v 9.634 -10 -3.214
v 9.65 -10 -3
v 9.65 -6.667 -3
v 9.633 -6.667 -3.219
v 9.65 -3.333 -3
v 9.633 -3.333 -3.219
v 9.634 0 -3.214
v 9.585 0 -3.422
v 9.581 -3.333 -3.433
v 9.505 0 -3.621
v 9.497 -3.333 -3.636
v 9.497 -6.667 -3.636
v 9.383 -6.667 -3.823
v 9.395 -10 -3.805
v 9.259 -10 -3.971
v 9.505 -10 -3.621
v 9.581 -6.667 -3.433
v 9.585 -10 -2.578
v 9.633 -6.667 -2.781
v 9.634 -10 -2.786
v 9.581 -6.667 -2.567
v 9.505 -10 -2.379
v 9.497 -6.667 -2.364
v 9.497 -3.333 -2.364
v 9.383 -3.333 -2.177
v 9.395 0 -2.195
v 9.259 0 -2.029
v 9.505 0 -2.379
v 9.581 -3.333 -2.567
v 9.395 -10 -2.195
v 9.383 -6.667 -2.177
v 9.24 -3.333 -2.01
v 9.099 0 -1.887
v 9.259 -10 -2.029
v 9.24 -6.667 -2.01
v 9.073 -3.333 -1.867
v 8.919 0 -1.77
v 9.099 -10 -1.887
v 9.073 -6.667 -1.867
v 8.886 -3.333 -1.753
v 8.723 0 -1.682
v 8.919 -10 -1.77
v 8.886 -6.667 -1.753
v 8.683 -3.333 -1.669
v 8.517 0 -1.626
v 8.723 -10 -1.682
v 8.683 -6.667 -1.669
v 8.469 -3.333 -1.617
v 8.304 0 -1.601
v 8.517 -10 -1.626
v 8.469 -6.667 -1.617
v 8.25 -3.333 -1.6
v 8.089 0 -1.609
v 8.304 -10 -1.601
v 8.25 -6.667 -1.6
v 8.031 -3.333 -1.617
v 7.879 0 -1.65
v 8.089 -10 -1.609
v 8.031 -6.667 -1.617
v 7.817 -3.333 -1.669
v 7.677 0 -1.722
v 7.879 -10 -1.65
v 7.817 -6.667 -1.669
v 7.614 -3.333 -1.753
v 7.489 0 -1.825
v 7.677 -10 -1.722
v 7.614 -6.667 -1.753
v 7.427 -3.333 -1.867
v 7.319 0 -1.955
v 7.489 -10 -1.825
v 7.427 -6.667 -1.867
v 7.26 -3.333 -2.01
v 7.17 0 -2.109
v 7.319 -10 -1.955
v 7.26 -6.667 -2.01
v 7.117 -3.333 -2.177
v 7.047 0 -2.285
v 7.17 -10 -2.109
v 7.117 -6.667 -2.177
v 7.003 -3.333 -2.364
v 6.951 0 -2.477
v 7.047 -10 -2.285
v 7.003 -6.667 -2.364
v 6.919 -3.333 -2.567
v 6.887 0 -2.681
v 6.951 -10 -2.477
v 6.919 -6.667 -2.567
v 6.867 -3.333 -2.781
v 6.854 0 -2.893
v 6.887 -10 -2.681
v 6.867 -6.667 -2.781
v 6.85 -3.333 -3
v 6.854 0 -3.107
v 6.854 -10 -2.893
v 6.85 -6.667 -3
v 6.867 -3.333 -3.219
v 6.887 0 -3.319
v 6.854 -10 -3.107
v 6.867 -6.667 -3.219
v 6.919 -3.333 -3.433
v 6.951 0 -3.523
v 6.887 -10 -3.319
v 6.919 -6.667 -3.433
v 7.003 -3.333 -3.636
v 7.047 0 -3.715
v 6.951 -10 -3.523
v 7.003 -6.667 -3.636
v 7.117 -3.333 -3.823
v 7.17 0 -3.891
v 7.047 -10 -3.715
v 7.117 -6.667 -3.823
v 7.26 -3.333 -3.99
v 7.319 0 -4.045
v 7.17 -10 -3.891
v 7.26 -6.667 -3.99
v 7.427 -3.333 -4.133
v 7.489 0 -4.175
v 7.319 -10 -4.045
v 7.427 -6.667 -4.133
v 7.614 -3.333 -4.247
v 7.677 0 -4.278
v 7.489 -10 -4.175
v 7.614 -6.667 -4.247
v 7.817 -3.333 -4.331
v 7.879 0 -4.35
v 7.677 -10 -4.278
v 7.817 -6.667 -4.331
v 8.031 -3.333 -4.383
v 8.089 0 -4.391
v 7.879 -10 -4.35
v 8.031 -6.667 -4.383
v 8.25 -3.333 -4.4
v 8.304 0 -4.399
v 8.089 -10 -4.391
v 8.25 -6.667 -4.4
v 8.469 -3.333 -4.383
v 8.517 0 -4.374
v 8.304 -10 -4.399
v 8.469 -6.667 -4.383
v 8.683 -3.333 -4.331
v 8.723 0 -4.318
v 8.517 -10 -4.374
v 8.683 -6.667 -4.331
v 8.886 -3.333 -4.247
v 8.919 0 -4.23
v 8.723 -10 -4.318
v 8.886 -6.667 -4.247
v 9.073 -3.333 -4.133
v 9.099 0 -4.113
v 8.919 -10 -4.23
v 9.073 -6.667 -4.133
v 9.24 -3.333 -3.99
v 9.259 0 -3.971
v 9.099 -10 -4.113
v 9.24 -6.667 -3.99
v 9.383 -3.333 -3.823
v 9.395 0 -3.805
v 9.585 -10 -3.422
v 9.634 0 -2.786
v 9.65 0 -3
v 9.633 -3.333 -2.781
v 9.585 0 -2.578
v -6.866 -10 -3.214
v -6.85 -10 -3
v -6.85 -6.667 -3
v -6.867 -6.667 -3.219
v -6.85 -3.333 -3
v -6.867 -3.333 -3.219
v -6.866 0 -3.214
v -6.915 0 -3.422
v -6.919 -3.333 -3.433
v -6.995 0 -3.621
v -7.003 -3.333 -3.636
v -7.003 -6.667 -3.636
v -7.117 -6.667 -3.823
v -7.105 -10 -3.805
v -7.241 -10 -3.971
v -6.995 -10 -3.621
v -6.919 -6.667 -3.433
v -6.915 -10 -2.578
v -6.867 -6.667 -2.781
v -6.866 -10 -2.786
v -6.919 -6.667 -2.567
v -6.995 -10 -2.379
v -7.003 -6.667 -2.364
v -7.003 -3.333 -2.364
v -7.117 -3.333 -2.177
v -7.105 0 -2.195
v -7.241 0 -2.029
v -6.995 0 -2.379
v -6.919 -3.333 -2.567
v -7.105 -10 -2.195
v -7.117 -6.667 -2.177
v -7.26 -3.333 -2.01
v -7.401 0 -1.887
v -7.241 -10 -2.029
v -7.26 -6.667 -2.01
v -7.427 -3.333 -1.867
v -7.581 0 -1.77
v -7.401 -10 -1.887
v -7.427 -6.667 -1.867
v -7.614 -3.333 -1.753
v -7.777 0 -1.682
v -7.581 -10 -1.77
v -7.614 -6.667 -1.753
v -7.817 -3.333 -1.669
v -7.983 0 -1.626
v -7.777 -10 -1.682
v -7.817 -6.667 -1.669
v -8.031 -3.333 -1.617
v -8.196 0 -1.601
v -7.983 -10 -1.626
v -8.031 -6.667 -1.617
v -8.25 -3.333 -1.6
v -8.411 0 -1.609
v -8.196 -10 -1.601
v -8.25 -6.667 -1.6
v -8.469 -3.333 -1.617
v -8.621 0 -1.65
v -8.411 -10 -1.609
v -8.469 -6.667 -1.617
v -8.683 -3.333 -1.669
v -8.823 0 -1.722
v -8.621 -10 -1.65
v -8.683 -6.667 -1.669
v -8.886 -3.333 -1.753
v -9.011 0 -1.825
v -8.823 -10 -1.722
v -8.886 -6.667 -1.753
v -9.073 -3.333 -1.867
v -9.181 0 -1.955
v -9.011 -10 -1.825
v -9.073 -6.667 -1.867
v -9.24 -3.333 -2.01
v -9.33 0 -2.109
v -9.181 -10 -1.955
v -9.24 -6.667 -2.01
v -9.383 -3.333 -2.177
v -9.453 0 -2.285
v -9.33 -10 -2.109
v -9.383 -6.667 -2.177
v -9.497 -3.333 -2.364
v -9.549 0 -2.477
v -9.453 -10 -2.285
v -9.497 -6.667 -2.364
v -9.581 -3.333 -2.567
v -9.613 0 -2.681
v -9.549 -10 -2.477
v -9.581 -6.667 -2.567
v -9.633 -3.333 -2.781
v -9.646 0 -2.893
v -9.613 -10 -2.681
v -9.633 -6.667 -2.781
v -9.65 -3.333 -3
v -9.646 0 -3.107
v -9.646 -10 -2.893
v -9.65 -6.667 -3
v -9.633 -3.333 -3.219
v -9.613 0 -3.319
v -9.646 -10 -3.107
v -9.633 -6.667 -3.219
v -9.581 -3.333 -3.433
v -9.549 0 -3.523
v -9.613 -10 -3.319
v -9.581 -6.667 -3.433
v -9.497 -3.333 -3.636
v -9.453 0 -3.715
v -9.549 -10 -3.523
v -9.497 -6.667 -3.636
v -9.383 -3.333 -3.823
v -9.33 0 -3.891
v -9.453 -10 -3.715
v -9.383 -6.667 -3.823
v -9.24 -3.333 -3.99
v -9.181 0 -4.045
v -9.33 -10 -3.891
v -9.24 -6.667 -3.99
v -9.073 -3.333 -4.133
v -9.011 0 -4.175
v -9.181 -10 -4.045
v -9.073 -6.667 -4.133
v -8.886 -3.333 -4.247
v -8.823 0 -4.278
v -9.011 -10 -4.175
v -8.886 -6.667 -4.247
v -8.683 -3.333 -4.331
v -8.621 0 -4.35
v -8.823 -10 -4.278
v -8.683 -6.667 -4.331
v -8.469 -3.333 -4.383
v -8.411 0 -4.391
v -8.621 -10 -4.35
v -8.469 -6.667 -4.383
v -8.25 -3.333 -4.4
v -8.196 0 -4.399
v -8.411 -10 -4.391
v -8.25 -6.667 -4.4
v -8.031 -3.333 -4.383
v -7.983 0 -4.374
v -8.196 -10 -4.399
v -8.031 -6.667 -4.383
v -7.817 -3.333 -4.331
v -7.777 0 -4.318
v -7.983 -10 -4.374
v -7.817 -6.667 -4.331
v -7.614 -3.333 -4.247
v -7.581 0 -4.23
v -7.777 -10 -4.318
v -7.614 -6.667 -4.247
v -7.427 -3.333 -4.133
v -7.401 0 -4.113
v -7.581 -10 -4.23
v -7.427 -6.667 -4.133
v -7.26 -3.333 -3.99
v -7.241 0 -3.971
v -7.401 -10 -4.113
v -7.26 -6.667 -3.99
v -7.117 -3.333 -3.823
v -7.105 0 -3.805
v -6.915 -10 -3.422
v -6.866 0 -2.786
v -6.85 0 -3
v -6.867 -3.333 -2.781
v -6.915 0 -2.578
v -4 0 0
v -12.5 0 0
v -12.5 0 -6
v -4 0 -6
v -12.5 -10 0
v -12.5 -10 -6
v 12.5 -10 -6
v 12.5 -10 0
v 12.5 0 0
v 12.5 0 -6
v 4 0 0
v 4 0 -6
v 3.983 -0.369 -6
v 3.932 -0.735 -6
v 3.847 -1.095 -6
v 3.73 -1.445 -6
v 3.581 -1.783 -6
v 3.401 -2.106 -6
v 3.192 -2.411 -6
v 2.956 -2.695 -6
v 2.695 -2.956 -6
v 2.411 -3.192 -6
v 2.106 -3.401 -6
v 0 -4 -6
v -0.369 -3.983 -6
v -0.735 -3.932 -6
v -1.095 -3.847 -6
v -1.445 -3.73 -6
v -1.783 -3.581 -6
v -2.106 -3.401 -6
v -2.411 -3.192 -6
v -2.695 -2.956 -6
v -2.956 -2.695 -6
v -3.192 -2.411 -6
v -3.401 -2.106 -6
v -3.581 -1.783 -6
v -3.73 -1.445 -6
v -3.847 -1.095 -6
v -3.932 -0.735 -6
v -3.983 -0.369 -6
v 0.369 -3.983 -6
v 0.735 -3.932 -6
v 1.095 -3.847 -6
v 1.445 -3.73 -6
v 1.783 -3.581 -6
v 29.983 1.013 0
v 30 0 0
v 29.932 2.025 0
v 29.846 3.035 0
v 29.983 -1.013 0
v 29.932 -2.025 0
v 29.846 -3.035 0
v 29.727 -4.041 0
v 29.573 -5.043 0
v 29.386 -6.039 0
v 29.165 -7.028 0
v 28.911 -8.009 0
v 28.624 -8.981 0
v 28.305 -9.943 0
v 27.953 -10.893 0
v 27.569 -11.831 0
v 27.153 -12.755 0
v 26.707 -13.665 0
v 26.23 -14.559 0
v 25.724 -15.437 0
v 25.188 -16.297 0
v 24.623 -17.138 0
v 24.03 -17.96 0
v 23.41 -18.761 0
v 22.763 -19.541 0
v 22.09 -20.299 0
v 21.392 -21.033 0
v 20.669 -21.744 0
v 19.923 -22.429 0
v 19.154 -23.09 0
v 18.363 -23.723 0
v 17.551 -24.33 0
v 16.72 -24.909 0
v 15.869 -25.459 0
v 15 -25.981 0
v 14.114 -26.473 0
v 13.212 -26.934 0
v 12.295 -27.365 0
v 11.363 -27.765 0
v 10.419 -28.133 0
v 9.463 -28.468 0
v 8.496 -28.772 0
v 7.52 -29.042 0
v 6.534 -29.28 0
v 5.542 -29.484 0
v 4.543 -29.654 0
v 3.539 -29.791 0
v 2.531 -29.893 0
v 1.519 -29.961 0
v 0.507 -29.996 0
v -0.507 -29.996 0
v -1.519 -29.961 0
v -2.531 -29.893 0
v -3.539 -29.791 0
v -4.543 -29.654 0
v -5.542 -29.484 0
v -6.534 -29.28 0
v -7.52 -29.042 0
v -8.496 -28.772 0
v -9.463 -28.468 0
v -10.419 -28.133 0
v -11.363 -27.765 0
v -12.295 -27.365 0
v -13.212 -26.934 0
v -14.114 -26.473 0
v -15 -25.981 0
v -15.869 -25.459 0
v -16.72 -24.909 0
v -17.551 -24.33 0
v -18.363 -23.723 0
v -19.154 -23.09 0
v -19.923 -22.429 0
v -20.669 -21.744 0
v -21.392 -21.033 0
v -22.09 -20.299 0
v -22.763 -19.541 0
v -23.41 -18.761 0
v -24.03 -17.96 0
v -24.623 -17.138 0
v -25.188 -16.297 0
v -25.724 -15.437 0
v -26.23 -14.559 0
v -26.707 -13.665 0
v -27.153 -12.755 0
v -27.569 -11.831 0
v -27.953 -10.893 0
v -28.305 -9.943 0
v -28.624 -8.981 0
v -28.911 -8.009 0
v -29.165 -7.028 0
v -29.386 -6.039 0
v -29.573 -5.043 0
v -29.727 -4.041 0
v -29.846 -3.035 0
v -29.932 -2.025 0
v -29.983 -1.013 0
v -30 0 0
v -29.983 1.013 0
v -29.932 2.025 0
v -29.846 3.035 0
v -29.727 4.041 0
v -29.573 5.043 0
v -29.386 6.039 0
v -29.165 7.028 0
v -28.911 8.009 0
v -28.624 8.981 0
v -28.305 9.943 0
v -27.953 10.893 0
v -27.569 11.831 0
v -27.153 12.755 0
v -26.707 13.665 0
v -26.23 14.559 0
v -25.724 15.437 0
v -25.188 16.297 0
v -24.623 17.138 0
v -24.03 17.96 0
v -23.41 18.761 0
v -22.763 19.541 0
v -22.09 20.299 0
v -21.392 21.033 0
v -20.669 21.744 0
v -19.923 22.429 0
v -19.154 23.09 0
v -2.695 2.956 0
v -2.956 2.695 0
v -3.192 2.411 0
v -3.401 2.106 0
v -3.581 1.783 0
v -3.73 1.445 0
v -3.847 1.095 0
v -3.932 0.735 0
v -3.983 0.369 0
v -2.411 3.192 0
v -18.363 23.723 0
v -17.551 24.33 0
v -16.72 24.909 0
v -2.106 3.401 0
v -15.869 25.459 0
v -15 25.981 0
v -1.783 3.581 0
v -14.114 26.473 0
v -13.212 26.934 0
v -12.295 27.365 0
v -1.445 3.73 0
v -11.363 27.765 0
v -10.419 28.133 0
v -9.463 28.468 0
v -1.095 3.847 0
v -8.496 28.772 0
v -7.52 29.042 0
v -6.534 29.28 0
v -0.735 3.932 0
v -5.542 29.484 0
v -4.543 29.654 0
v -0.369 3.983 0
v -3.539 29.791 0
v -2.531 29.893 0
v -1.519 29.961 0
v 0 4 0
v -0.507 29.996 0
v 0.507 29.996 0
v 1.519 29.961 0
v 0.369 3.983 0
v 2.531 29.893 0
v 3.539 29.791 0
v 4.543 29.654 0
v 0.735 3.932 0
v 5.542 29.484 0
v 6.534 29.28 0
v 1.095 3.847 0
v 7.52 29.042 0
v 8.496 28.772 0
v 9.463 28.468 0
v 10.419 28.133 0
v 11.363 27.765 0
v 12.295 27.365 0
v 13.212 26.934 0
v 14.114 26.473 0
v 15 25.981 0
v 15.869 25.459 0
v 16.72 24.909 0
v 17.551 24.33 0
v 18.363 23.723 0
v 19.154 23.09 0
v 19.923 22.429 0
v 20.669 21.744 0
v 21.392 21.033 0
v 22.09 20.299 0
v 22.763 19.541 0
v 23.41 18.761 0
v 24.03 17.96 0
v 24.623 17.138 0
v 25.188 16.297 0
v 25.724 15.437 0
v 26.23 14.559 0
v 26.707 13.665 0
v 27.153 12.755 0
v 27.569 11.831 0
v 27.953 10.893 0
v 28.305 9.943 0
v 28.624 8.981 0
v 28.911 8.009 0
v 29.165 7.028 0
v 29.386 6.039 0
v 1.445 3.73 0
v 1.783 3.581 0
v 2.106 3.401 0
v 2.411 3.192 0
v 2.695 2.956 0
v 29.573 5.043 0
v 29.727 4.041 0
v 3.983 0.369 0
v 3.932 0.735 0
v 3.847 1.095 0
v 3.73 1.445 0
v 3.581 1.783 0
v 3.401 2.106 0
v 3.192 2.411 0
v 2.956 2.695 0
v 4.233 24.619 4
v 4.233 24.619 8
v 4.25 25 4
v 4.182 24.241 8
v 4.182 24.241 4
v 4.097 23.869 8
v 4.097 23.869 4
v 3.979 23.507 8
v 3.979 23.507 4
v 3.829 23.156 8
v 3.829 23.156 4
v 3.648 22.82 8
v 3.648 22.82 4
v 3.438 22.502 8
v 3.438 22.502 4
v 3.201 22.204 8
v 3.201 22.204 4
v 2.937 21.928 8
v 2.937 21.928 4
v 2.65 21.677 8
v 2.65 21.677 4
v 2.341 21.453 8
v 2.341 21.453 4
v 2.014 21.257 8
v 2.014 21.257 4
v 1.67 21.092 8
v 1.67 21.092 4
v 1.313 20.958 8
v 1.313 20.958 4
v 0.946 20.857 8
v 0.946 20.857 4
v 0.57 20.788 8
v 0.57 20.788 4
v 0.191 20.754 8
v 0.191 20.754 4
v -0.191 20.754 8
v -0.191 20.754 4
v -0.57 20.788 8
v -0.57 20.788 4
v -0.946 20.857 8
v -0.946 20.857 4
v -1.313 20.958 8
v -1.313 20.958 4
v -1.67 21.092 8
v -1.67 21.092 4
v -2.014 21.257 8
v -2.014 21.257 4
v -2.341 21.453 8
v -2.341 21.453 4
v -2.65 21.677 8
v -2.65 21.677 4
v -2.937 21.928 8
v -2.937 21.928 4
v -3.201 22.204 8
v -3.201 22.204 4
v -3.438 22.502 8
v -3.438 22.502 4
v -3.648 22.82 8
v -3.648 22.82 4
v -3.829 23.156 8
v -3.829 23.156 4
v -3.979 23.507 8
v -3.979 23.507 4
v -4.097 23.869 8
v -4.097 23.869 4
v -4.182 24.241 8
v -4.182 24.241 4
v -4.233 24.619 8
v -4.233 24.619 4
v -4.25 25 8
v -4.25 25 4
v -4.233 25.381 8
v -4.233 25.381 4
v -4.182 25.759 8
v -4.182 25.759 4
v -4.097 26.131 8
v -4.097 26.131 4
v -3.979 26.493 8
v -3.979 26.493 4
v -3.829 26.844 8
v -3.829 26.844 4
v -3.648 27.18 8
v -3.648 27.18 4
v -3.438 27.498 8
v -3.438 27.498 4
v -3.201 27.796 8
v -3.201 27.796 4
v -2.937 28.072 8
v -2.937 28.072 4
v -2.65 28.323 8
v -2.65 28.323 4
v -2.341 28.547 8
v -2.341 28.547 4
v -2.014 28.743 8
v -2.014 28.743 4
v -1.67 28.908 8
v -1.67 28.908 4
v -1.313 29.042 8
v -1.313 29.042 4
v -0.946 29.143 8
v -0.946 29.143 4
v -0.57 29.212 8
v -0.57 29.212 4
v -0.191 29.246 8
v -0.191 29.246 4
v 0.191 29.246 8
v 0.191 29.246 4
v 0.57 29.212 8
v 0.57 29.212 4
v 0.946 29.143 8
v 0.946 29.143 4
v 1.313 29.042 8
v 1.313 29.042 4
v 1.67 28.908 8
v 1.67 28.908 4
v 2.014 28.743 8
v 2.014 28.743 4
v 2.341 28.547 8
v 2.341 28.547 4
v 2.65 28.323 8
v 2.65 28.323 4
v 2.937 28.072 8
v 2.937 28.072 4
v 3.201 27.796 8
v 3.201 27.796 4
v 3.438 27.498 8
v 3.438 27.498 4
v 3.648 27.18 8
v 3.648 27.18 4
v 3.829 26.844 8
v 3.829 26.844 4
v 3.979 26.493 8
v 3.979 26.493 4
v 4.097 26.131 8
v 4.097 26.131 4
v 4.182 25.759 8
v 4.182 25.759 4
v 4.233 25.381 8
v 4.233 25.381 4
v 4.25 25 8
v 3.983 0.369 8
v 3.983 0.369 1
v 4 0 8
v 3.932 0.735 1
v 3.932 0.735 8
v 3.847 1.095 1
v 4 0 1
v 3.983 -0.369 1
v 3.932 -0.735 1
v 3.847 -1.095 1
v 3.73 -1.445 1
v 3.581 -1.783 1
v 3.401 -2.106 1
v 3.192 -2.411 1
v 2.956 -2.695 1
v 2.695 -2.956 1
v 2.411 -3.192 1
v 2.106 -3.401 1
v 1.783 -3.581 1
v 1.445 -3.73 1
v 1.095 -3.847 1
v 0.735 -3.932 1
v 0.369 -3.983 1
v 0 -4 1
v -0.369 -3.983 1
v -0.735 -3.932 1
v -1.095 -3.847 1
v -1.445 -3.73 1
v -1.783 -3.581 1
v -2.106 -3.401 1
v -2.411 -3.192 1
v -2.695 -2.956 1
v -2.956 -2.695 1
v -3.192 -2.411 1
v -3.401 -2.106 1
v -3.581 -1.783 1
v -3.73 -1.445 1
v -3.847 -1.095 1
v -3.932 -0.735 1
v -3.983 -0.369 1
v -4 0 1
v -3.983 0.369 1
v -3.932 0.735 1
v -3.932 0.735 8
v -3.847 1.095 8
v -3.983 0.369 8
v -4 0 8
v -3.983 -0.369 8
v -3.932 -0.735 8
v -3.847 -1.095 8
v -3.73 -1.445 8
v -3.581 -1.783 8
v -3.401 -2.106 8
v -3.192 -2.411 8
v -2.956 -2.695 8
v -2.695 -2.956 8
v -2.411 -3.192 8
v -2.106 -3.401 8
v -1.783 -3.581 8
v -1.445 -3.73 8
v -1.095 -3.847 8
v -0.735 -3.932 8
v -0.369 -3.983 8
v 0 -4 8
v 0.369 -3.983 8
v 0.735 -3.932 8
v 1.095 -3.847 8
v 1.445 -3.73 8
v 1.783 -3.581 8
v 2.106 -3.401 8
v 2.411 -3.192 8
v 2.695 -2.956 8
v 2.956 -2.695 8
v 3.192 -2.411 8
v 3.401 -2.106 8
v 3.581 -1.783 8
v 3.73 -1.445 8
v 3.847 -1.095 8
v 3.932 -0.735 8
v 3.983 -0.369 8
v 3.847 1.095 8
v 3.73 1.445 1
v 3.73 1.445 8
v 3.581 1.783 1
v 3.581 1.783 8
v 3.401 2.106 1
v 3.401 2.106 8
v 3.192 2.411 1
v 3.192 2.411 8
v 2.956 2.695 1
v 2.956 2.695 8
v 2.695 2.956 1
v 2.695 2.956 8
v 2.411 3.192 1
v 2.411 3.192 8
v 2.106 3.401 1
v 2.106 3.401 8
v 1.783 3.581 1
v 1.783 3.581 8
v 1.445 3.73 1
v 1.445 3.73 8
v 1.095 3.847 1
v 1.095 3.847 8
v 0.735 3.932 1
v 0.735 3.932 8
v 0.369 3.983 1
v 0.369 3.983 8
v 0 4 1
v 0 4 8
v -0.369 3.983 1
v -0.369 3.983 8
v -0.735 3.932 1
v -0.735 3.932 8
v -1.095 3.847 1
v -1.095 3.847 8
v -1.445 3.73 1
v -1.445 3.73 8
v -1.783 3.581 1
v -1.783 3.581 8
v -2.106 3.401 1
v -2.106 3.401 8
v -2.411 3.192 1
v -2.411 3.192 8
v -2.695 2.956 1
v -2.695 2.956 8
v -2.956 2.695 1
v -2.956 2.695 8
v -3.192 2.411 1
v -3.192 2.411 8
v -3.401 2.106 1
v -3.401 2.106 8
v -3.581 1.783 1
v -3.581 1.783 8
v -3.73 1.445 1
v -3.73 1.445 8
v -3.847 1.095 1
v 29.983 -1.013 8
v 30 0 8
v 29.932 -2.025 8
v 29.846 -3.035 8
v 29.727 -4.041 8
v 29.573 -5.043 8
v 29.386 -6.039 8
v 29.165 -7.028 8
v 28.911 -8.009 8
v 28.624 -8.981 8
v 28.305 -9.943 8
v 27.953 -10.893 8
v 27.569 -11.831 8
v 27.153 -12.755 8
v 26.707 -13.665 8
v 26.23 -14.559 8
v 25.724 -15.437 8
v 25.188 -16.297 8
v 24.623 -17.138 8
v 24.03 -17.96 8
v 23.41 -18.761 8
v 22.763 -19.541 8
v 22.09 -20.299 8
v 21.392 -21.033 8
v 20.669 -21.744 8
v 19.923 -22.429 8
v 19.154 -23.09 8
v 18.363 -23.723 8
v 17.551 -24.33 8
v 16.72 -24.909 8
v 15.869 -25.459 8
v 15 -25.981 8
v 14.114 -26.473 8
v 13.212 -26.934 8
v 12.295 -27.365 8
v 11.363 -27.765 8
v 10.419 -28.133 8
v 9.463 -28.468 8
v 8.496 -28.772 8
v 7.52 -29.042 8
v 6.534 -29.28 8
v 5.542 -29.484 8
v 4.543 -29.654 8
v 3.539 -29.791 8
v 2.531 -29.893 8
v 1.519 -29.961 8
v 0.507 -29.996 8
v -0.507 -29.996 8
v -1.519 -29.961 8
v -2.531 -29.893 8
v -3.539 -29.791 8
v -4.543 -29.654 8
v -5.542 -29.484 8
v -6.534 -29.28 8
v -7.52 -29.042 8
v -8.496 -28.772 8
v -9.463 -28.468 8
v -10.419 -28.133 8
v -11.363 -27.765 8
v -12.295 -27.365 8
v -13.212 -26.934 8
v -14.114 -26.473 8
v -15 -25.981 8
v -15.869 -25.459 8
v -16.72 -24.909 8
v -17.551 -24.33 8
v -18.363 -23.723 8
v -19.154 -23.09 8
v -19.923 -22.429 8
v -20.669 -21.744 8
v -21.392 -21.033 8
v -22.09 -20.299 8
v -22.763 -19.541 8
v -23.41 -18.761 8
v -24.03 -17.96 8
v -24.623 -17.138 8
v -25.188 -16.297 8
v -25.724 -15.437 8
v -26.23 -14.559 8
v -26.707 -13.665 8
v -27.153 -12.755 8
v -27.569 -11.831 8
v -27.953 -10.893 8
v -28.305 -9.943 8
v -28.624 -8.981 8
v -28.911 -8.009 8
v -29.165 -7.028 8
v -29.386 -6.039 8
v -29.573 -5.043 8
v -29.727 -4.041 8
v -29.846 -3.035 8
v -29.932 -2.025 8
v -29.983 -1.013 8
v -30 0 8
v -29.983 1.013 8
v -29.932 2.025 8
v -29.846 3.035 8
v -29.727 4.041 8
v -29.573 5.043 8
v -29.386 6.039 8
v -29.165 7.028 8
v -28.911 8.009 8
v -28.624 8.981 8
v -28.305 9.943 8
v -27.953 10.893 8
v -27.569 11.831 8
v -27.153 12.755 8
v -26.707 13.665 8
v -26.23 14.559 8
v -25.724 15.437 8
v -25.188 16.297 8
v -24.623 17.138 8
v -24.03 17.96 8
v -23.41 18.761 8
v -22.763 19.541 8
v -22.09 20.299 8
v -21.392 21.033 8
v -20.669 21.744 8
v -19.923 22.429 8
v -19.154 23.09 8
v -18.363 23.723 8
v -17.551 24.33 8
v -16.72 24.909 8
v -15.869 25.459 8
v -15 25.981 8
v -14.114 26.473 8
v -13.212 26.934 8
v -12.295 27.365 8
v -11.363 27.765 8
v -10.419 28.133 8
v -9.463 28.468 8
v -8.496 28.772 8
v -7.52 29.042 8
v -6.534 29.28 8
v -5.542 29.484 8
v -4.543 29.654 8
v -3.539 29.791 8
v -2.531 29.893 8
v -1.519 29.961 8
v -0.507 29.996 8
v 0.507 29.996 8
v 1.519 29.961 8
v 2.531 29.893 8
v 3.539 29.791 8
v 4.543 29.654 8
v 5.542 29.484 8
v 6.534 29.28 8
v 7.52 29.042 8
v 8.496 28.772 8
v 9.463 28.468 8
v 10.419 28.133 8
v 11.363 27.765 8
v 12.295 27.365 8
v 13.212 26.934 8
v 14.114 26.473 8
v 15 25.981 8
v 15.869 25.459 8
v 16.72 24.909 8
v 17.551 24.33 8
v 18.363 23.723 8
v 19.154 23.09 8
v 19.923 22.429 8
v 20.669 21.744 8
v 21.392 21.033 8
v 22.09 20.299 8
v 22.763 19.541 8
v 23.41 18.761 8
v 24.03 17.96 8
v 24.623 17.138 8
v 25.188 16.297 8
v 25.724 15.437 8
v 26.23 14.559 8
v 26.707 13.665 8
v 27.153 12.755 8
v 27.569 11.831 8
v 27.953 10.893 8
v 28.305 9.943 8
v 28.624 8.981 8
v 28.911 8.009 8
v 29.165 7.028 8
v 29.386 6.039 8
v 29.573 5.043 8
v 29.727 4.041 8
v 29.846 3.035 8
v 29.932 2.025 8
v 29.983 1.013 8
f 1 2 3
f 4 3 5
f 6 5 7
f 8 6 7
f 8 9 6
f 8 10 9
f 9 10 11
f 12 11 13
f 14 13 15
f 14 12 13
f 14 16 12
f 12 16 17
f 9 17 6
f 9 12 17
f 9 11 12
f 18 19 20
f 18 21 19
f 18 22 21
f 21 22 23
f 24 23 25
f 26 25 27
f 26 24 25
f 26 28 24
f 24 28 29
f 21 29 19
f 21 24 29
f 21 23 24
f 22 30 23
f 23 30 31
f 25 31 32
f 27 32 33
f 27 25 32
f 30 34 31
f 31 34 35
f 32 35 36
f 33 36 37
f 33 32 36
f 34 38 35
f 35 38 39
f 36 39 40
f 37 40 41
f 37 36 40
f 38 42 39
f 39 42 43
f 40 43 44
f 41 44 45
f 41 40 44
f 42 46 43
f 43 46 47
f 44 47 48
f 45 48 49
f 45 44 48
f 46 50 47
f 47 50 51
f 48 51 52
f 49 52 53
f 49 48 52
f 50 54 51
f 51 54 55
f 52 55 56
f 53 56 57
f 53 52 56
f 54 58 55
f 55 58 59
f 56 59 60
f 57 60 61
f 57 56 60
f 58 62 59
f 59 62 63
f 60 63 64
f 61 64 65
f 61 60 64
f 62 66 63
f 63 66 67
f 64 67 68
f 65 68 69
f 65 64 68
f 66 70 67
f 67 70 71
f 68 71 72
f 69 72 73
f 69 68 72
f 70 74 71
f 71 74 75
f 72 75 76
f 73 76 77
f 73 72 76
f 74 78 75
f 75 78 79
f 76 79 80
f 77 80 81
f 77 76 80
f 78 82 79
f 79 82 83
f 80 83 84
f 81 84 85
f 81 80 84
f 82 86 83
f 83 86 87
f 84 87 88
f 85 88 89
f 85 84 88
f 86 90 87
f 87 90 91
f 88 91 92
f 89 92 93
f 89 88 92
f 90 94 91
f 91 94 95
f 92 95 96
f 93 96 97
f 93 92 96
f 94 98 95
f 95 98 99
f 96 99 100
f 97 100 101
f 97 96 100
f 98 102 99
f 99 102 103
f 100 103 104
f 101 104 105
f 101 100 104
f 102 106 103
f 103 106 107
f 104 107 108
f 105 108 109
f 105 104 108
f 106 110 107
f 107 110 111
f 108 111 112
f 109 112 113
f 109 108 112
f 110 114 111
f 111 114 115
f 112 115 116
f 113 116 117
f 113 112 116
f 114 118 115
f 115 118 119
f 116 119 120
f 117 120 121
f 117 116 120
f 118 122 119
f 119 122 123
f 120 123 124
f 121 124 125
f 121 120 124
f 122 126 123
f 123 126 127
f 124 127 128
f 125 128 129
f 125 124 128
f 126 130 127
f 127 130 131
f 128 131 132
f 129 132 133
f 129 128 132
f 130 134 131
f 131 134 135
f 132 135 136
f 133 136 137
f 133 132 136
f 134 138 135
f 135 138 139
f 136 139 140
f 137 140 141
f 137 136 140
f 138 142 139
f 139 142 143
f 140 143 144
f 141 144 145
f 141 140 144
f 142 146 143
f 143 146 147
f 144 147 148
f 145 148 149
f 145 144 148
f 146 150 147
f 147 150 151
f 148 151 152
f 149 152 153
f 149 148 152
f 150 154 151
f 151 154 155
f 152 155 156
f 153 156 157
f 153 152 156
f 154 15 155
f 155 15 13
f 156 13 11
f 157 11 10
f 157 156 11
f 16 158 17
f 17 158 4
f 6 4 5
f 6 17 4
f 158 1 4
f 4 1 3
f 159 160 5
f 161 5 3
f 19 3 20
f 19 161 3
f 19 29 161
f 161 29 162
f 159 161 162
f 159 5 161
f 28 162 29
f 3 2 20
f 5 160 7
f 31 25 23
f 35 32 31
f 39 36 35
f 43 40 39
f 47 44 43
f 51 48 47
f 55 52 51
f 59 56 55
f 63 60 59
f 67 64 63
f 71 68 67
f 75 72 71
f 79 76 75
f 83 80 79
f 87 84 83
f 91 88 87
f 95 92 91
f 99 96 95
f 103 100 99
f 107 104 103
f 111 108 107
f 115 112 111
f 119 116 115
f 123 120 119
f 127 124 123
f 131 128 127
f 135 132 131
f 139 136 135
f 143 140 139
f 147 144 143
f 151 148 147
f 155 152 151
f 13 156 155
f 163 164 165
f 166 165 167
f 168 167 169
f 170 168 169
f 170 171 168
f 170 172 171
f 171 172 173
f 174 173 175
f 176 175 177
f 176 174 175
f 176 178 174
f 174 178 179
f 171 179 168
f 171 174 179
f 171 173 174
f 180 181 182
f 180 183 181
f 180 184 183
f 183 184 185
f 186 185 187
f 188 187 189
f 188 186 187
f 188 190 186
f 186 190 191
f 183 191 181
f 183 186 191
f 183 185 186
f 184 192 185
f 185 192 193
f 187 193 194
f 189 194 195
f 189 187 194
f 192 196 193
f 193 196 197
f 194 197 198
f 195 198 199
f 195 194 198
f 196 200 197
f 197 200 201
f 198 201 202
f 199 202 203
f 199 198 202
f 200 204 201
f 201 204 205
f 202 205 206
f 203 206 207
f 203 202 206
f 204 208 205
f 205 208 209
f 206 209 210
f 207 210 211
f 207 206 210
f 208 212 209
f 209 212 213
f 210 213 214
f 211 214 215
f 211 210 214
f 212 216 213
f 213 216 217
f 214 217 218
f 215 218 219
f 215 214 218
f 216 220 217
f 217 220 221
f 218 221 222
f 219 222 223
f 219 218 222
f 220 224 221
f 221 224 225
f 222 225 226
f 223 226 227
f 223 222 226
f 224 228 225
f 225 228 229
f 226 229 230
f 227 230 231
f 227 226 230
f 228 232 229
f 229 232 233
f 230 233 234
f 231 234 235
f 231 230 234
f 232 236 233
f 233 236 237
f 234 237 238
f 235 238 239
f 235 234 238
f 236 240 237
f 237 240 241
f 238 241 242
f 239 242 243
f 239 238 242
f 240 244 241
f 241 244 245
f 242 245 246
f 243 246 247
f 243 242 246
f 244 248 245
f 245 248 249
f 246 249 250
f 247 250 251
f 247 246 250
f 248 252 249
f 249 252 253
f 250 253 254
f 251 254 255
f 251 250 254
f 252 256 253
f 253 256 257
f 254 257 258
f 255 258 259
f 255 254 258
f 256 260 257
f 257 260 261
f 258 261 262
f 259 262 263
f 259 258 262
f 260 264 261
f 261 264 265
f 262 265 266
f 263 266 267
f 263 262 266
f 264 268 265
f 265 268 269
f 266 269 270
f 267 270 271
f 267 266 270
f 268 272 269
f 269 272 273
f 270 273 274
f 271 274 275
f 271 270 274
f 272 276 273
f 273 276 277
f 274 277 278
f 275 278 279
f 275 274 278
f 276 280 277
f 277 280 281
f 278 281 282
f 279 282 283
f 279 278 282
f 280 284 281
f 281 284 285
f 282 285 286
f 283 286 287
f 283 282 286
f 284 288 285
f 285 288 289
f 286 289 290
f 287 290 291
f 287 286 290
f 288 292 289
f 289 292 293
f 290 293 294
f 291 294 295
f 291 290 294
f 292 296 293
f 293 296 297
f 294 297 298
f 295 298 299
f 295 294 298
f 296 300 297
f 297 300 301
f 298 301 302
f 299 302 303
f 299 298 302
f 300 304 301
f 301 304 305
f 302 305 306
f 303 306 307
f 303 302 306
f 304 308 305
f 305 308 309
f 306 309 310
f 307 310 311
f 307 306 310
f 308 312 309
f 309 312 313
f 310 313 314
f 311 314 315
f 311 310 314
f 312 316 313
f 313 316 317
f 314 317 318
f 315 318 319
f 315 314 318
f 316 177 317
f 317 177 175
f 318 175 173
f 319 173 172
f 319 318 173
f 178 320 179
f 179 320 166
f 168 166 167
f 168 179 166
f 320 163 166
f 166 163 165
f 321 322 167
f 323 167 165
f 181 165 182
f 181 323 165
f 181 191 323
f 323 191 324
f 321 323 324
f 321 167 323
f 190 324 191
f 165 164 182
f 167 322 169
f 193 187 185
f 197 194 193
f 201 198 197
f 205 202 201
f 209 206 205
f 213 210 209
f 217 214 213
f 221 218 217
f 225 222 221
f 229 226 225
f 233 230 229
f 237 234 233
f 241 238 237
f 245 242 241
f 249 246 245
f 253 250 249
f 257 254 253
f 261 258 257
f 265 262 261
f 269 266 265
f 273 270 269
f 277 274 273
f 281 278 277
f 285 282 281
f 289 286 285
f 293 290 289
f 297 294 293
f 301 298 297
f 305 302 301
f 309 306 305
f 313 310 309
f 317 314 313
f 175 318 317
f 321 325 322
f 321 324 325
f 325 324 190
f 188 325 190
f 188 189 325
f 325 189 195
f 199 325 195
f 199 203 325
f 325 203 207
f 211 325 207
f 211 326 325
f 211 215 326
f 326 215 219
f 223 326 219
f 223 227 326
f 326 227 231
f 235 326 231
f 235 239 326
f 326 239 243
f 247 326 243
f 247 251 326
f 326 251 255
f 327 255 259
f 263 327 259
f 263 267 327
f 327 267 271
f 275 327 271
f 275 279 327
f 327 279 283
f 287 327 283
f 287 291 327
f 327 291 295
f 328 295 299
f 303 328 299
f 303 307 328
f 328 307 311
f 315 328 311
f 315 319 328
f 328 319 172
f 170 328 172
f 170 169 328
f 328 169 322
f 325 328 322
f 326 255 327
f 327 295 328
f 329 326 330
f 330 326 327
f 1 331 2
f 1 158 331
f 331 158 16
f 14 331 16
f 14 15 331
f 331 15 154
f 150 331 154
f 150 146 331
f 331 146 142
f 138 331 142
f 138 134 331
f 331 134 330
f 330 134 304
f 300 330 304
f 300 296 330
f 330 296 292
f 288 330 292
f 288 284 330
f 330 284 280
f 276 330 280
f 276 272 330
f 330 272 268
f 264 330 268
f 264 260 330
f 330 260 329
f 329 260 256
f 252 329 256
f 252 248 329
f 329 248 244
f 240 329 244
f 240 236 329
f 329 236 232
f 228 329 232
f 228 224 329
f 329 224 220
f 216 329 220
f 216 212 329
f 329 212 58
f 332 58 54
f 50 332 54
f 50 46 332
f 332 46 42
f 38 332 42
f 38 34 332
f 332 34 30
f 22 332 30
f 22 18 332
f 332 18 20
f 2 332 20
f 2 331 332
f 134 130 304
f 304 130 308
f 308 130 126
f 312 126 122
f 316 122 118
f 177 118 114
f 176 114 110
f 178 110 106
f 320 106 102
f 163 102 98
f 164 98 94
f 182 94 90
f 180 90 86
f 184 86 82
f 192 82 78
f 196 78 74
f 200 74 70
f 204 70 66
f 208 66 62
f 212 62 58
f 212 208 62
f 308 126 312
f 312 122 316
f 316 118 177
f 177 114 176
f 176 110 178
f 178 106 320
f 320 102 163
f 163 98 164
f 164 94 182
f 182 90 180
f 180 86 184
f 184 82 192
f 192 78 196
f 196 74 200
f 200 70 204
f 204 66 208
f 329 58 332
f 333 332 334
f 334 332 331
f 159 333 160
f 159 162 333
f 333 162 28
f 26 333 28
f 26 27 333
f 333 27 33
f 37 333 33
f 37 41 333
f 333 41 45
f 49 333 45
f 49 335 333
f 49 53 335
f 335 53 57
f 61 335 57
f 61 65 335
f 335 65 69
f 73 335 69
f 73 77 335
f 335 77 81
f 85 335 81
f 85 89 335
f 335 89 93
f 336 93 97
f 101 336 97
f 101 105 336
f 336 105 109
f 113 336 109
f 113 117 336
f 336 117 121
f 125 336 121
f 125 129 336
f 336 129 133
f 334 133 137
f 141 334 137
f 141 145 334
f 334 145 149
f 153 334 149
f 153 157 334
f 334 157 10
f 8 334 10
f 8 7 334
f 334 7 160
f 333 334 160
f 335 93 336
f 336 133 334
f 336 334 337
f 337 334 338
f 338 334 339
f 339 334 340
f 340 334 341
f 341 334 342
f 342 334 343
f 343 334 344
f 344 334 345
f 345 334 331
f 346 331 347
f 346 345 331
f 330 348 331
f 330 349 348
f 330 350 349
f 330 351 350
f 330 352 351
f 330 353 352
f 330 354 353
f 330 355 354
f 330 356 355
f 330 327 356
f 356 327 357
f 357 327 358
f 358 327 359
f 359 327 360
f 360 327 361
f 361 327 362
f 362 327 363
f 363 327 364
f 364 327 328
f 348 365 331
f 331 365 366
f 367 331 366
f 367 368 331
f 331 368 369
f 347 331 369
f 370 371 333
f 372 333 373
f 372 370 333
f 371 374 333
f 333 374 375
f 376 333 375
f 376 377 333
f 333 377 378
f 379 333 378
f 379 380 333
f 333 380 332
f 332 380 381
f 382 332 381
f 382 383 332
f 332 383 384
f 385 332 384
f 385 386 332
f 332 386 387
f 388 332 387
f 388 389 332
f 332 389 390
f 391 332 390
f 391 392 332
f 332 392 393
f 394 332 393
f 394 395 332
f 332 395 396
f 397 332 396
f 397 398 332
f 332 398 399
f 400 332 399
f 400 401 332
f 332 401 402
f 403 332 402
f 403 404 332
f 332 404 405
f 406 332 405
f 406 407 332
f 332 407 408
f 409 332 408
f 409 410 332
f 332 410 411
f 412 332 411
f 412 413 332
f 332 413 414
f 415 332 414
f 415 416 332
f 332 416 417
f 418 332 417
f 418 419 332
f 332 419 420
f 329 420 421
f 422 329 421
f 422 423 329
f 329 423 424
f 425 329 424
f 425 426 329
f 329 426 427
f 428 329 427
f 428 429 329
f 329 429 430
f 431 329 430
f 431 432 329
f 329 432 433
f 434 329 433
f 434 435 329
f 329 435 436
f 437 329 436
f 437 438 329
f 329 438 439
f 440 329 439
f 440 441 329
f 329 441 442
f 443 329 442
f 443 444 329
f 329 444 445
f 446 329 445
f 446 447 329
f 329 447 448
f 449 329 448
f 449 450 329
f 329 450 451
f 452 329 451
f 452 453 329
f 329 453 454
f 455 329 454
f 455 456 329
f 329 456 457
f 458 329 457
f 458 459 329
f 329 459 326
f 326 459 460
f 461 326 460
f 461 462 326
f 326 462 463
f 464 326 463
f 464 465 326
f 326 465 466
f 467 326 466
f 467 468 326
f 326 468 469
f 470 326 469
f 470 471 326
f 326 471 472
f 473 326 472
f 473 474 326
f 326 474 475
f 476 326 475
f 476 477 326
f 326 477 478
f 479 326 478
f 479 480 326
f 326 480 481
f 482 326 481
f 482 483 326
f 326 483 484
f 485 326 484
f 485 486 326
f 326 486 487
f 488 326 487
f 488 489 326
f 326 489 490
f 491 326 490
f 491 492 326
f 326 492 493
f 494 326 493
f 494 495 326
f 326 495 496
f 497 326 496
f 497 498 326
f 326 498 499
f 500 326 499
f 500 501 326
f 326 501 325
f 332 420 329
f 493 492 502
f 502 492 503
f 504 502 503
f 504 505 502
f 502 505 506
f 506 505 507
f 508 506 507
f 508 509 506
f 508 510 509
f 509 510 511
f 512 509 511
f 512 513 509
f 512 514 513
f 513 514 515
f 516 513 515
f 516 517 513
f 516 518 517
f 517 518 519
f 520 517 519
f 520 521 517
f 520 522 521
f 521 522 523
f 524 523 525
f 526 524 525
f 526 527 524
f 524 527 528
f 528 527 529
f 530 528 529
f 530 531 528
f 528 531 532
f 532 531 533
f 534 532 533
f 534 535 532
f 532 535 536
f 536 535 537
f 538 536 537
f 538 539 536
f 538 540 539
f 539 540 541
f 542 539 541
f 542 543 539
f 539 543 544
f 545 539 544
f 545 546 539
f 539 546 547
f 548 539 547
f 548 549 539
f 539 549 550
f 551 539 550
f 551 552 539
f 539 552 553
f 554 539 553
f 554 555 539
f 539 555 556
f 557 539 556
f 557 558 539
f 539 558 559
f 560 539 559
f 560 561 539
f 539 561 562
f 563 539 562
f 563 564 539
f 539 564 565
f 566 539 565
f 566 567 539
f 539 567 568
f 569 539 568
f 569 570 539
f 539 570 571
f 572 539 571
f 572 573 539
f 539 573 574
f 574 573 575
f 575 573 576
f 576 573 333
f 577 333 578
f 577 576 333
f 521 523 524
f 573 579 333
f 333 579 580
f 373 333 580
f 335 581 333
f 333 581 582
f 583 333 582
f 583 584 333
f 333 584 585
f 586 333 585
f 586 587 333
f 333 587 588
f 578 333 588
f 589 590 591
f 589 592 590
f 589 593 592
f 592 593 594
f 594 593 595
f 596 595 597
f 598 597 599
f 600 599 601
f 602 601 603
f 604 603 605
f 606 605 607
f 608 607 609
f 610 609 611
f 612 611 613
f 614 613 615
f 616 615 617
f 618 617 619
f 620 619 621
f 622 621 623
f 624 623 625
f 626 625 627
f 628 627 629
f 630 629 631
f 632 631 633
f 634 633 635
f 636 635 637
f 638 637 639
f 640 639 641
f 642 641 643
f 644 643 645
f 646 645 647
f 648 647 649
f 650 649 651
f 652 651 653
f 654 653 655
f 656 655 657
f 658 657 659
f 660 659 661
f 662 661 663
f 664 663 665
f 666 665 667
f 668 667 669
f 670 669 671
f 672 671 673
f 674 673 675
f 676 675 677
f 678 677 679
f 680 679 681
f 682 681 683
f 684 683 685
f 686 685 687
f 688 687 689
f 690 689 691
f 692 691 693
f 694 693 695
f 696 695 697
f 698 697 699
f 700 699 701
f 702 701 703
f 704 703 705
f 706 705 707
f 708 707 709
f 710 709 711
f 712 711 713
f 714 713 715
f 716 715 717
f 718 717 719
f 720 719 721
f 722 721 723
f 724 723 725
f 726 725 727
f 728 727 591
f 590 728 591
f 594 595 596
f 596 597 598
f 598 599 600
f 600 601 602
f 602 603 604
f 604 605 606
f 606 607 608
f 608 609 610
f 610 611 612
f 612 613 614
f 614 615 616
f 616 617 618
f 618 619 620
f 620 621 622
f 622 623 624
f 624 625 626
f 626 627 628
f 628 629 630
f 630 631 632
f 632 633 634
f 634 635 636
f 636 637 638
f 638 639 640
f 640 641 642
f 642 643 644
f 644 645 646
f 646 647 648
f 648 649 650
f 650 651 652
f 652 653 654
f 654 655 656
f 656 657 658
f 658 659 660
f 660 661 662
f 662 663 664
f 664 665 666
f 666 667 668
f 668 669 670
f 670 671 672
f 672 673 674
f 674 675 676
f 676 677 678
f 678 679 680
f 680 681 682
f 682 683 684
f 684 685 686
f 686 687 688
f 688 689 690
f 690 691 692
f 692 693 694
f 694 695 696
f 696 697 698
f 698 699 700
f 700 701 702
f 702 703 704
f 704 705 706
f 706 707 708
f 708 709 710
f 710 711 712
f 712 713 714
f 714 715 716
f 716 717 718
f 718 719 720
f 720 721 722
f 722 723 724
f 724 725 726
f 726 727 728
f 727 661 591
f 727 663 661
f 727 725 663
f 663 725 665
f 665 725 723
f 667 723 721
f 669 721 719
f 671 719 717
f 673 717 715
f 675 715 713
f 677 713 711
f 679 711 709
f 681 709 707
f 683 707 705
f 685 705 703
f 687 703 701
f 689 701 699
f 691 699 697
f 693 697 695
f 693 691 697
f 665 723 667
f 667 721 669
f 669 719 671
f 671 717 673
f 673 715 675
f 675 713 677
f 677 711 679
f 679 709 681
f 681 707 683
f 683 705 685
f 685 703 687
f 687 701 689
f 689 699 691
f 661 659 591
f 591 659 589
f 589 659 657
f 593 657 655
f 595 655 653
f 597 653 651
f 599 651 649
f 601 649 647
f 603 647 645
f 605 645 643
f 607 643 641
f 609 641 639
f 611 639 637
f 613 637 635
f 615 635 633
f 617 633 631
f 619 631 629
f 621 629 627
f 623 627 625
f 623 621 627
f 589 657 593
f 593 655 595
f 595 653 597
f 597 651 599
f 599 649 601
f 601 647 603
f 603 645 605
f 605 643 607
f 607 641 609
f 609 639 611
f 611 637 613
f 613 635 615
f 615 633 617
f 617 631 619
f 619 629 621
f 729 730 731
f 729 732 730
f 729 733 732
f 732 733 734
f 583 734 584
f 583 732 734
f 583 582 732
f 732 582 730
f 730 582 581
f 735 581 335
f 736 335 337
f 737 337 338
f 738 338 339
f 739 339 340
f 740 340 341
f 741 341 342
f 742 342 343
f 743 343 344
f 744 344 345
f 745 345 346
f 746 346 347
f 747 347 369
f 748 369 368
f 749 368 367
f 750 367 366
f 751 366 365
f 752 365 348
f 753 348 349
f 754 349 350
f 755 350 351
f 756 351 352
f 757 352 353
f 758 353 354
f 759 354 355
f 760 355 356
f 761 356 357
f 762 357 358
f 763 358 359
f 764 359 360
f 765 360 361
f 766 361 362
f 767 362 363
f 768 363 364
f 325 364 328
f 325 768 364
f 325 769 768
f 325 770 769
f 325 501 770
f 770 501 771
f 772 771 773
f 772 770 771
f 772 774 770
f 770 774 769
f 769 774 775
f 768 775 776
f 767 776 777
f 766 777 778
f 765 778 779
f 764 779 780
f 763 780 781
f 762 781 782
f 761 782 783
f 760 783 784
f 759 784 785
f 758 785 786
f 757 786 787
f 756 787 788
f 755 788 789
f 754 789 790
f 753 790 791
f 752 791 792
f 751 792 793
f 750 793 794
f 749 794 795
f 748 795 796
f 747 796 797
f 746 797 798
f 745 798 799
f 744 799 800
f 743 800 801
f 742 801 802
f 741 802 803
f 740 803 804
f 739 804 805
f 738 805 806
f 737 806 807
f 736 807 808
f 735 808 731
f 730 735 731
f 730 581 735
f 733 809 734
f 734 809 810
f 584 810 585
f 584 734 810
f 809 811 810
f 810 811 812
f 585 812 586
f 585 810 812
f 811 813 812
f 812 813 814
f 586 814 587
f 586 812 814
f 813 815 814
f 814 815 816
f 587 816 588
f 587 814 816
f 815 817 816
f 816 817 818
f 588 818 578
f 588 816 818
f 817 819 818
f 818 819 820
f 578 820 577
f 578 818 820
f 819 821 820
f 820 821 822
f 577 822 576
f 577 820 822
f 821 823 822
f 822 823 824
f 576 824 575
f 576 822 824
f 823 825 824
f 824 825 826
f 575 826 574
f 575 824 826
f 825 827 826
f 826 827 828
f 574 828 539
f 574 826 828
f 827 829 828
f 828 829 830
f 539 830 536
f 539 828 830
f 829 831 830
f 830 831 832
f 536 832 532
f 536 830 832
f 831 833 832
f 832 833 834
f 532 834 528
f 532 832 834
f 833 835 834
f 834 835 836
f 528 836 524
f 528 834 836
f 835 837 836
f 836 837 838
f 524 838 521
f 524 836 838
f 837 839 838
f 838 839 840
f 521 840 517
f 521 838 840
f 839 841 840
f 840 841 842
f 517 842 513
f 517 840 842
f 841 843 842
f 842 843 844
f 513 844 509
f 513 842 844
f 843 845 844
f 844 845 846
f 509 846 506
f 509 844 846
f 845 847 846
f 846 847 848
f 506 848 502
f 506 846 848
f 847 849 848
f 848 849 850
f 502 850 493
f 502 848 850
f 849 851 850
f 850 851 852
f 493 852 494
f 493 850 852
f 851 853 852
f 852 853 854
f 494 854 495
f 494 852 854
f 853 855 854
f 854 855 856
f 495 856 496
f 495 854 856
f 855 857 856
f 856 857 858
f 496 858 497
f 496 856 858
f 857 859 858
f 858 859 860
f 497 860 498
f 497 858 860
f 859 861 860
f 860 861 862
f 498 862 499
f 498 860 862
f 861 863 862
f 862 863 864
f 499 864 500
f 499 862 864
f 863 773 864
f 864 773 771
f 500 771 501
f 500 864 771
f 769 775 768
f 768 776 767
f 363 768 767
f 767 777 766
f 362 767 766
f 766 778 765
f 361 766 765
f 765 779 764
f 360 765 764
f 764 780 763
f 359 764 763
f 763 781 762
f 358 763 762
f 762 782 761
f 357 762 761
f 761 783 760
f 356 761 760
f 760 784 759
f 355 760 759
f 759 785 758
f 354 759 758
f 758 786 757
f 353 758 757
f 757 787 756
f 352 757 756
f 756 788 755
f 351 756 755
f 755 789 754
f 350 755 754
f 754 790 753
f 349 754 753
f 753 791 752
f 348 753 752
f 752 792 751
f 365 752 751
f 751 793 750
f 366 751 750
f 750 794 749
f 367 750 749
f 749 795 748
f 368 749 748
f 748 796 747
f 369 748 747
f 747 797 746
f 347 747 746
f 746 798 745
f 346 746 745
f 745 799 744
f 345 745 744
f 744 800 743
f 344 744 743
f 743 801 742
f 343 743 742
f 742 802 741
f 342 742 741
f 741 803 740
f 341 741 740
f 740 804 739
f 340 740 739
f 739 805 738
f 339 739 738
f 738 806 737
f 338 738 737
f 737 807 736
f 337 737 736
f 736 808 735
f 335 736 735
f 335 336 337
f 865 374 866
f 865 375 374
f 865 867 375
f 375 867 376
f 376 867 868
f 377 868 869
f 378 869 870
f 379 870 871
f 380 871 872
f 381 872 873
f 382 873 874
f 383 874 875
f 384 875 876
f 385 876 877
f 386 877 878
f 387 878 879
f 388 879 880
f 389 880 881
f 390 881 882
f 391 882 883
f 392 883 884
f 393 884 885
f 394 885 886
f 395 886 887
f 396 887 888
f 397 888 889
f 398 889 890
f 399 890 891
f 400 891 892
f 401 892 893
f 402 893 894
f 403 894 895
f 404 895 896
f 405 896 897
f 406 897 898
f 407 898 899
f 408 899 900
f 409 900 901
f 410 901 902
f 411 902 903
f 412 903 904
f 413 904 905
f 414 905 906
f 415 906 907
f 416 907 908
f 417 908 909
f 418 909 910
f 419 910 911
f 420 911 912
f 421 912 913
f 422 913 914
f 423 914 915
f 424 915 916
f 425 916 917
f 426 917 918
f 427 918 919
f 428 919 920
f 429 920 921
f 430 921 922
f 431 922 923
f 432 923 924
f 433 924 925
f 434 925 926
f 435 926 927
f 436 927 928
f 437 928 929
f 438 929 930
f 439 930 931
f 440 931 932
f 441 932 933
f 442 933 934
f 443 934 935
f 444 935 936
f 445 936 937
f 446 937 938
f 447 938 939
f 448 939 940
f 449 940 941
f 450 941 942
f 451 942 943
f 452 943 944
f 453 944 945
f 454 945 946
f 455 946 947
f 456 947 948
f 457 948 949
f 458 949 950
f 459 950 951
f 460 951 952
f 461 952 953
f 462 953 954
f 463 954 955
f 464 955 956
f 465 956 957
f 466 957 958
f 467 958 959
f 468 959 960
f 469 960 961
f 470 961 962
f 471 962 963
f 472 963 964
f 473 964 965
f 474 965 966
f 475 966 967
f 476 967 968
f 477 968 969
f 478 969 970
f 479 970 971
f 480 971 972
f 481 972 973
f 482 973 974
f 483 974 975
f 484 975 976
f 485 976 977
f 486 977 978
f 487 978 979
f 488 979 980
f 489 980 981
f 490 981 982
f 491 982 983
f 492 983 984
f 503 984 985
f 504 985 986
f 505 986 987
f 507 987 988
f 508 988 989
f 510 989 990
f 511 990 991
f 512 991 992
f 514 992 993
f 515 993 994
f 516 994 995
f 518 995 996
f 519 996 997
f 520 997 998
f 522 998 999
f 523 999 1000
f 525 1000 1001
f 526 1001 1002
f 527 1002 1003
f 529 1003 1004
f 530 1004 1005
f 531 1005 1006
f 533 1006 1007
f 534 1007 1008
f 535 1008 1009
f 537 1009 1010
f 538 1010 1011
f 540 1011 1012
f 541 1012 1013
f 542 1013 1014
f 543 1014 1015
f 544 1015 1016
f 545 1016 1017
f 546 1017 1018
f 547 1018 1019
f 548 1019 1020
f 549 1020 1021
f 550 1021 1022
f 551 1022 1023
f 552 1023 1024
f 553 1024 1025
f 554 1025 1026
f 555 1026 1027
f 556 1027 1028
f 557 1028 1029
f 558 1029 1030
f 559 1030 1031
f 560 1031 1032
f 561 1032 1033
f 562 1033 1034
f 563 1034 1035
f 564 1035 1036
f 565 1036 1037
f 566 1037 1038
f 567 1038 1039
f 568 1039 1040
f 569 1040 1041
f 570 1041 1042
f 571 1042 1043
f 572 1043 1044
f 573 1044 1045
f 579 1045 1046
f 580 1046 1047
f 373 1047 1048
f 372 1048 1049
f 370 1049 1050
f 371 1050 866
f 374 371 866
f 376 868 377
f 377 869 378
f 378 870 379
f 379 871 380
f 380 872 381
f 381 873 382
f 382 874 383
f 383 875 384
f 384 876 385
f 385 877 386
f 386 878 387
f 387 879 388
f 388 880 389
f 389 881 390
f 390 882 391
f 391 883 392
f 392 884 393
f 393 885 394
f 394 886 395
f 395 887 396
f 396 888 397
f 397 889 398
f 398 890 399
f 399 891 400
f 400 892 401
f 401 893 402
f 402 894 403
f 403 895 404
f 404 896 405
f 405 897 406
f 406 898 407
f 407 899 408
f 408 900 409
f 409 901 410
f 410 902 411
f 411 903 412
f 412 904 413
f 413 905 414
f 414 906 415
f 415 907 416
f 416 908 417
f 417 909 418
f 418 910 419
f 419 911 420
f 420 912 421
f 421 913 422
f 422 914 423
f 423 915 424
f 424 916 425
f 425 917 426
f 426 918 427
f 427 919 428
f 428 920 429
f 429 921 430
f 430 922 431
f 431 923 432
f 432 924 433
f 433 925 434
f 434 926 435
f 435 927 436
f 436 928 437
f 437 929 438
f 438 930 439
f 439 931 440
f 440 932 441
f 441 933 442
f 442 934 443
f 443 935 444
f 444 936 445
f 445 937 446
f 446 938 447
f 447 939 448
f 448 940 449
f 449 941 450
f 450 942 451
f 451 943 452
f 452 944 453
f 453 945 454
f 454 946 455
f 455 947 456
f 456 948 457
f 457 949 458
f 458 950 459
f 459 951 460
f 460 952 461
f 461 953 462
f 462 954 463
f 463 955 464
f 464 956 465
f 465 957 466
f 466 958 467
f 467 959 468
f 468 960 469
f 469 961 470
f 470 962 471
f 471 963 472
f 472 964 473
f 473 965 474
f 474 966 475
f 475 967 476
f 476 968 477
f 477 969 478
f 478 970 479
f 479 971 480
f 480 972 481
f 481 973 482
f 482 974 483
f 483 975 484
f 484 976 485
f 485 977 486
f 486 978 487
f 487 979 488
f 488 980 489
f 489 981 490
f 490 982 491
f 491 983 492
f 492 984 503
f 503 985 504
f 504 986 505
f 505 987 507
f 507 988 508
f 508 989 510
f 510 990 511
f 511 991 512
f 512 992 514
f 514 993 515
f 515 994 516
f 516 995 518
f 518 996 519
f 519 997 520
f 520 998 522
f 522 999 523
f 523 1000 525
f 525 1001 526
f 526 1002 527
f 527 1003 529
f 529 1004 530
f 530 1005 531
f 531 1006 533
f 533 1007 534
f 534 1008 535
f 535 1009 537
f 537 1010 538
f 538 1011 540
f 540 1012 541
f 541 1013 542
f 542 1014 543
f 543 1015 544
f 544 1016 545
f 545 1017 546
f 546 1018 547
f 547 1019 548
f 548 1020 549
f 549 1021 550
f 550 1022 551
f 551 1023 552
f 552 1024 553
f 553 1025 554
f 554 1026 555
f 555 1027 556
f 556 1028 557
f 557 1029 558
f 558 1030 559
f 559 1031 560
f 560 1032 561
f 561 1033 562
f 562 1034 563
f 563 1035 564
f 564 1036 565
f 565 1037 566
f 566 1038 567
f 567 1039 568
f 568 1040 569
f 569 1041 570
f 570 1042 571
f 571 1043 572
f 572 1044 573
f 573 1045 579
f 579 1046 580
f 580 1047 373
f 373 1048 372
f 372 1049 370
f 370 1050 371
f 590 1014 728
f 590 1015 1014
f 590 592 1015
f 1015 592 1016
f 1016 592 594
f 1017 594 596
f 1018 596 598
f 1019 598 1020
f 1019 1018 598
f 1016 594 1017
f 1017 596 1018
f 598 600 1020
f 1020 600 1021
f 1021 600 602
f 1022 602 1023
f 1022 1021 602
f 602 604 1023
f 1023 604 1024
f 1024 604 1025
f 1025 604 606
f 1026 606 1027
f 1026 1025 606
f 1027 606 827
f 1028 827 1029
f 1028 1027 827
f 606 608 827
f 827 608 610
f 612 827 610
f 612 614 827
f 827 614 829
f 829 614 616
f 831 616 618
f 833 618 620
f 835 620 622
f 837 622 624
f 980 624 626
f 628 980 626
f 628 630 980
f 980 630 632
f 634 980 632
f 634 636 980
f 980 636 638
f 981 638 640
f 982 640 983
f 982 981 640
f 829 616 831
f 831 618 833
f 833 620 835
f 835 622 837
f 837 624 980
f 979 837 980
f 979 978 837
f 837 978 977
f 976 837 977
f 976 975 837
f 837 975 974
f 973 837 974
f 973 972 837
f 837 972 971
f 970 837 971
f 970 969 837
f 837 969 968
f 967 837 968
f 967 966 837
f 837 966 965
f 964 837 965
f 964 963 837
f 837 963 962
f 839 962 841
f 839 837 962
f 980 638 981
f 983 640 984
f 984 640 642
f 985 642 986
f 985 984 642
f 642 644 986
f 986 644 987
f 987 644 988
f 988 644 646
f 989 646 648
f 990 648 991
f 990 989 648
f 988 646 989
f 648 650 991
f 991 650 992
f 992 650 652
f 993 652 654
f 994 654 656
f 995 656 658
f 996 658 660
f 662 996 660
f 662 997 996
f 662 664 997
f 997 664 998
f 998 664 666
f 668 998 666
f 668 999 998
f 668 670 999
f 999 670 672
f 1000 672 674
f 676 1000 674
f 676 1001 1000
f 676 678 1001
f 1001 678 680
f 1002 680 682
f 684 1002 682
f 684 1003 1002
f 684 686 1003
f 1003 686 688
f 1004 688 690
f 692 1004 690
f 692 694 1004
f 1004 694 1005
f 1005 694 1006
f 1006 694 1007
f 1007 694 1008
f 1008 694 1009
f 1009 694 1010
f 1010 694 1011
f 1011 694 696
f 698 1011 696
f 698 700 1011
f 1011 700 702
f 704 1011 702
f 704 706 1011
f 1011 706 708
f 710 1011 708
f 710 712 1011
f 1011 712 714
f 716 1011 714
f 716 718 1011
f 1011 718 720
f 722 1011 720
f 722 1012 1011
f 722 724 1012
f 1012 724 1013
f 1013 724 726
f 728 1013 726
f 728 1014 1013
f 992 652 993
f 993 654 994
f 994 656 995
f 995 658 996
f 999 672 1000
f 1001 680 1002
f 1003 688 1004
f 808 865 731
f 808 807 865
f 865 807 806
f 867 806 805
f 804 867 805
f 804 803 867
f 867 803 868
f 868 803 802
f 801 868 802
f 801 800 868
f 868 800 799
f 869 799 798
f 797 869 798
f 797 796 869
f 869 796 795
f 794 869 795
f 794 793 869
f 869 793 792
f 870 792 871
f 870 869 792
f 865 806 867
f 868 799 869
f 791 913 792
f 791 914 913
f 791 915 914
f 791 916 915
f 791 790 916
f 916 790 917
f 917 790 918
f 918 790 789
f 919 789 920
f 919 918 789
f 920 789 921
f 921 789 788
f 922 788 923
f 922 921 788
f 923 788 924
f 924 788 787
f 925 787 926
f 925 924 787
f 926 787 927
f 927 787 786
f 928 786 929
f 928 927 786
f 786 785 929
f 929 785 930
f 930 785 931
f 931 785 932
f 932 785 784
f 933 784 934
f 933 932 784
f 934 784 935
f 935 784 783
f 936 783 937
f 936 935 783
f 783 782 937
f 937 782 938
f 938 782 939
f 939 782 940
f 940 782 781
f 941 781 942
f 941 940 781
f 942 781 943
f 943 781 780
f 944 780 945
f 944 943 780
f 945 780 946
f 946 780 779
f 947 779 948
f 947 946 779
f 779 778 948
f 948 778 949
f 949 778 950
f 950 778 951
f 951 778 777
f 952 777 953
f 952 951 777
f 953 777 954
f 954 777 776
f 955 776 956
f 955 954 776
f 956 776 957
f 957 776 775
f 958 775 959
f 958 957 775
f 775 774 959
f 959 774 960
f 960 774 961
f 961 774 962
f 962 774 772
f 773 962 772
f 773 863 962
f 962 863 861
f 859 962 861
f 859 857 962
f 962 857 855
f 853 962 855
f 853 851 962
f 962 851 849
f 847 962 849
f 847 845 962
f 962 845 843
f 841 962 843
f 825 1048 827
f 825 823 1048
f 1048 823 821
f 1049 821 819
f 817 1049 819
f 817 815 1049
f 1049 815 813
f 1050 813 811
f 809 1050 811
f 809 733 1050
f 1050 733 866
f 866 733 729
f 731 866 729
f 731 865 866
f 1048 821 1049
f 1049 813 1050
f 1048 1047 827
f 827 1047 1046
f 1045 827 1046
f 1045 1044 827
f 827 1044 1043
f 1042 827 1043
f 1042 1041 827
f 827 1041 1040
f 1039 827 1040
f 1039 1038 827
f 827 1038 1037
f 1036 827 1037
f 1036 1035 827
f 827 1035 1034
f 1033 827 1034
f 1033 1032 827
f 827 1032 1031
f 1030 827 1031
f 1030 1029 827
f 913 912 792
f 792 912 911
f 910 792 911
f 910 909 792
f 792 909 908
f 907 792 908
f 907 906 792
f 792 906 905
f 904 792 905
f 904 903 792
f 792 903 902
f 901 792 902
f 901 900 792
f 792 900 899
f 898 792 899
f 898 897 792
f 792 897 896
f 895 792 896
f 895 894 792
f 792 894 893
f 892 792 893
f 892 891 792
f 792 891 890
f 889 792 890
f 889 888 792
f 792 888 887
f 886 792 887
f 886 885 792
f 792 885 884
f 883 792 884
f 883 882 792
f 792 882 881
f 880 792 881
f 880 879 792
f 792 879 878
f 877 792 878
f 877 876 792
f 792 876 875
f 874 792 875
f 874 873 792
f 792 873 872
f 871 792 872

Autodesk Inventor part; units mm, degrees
ref_plane "YZ Plane" through (0, 0, 0) normal (1, 0, 0) x (0, 1, 0)
ref_plane "XZ Plane" through (0, 0, 0) normal (0, 1, 0) x (-1, 0, 0)
ref_plane "XY Plane" through (0, 0, 0) normal (0, 0, 1) x (1, 0, 0)
sketch "Sketch1" plane through (0, 0, 0) normal (0, 0, 1) x (1, 0, 0)
  circle A0 centre (0, 0) radius 30
  circle A1 centre (0, 0) radius 4
  dimension "d0" = 60
  dimension "d1" = 8
extrude "Extrusion1" add sketch "Sketch1" along normal blind 8
sketch "Sketch2" plane through (0, 0, 8) normal (0, 0, 1) x (1, 0, 0)
  circle A0 centre (0, 0) radius 30 projected
  line L0 (0, 0) -> (0, 25) construction
  circle A1 centre (0, 25) radius 4.25
  dimension "d4" = 8.5
  dimension "d5" = 25
extrude "Extrusion2" cut sketch "Sketch2" against normal blind 4 contours A1
sketch "Sketch3" plane through (0, 0, 0) normal (0, 0, -1) x (-1, 0, 0)
  circle A0 centre (0, 0) radius 4 projected
  line L0 (-4, 0) -> (-12.5, 0)
  line L1 (-12.5, 0) -> (-12.5, -10)
  line L2 (-12.5, -10) -> (12.5, -10)
  line L3 (12.5, -10) -> (12.5, 0)
  line L4 (12.5, 0) -> (4, 0)
  dimension "d8" = 10
  dimension "d9" = 25
extrude "Extrusion3" add sketch "Sketch3" along normal blind 6 contours L4 L3 L2 L1 L0 A0
sketch "Sketch4" plane through (4, 0, 0) normal (0, 1, 0) x (1, 0, 0)
  line L0 (8.5, 0) -> (0, 0) projected
  line L1 (0, 6) -> (8.5, 6) projected
  line L2 (-8, 0) -> (-16.5, 0) projected
  line L3 (-8, 0) -> (-8, 6) projected
  line L4 (-16.5, 6) -> (-8, 6) projected
  line L5 (-16.5, 0) -> (-16.5, 6) projected
  line L6 (-12.25, 6) -> (-12.25, 0) construction
  line L7 (4.25, 6) -> (4.25, 0) construction
  circle A0 centre (-12.25, 3) radius 1.4
  circle A1 centre (4.25, 3) radius 1.4
  point P0 (-4, 0)
  dimension "d12" = 2.8
extrude "Extrusion4" cut sketch "Sketch4" against normal through all contours A0 | A1
properties part number "sensor wheel"
